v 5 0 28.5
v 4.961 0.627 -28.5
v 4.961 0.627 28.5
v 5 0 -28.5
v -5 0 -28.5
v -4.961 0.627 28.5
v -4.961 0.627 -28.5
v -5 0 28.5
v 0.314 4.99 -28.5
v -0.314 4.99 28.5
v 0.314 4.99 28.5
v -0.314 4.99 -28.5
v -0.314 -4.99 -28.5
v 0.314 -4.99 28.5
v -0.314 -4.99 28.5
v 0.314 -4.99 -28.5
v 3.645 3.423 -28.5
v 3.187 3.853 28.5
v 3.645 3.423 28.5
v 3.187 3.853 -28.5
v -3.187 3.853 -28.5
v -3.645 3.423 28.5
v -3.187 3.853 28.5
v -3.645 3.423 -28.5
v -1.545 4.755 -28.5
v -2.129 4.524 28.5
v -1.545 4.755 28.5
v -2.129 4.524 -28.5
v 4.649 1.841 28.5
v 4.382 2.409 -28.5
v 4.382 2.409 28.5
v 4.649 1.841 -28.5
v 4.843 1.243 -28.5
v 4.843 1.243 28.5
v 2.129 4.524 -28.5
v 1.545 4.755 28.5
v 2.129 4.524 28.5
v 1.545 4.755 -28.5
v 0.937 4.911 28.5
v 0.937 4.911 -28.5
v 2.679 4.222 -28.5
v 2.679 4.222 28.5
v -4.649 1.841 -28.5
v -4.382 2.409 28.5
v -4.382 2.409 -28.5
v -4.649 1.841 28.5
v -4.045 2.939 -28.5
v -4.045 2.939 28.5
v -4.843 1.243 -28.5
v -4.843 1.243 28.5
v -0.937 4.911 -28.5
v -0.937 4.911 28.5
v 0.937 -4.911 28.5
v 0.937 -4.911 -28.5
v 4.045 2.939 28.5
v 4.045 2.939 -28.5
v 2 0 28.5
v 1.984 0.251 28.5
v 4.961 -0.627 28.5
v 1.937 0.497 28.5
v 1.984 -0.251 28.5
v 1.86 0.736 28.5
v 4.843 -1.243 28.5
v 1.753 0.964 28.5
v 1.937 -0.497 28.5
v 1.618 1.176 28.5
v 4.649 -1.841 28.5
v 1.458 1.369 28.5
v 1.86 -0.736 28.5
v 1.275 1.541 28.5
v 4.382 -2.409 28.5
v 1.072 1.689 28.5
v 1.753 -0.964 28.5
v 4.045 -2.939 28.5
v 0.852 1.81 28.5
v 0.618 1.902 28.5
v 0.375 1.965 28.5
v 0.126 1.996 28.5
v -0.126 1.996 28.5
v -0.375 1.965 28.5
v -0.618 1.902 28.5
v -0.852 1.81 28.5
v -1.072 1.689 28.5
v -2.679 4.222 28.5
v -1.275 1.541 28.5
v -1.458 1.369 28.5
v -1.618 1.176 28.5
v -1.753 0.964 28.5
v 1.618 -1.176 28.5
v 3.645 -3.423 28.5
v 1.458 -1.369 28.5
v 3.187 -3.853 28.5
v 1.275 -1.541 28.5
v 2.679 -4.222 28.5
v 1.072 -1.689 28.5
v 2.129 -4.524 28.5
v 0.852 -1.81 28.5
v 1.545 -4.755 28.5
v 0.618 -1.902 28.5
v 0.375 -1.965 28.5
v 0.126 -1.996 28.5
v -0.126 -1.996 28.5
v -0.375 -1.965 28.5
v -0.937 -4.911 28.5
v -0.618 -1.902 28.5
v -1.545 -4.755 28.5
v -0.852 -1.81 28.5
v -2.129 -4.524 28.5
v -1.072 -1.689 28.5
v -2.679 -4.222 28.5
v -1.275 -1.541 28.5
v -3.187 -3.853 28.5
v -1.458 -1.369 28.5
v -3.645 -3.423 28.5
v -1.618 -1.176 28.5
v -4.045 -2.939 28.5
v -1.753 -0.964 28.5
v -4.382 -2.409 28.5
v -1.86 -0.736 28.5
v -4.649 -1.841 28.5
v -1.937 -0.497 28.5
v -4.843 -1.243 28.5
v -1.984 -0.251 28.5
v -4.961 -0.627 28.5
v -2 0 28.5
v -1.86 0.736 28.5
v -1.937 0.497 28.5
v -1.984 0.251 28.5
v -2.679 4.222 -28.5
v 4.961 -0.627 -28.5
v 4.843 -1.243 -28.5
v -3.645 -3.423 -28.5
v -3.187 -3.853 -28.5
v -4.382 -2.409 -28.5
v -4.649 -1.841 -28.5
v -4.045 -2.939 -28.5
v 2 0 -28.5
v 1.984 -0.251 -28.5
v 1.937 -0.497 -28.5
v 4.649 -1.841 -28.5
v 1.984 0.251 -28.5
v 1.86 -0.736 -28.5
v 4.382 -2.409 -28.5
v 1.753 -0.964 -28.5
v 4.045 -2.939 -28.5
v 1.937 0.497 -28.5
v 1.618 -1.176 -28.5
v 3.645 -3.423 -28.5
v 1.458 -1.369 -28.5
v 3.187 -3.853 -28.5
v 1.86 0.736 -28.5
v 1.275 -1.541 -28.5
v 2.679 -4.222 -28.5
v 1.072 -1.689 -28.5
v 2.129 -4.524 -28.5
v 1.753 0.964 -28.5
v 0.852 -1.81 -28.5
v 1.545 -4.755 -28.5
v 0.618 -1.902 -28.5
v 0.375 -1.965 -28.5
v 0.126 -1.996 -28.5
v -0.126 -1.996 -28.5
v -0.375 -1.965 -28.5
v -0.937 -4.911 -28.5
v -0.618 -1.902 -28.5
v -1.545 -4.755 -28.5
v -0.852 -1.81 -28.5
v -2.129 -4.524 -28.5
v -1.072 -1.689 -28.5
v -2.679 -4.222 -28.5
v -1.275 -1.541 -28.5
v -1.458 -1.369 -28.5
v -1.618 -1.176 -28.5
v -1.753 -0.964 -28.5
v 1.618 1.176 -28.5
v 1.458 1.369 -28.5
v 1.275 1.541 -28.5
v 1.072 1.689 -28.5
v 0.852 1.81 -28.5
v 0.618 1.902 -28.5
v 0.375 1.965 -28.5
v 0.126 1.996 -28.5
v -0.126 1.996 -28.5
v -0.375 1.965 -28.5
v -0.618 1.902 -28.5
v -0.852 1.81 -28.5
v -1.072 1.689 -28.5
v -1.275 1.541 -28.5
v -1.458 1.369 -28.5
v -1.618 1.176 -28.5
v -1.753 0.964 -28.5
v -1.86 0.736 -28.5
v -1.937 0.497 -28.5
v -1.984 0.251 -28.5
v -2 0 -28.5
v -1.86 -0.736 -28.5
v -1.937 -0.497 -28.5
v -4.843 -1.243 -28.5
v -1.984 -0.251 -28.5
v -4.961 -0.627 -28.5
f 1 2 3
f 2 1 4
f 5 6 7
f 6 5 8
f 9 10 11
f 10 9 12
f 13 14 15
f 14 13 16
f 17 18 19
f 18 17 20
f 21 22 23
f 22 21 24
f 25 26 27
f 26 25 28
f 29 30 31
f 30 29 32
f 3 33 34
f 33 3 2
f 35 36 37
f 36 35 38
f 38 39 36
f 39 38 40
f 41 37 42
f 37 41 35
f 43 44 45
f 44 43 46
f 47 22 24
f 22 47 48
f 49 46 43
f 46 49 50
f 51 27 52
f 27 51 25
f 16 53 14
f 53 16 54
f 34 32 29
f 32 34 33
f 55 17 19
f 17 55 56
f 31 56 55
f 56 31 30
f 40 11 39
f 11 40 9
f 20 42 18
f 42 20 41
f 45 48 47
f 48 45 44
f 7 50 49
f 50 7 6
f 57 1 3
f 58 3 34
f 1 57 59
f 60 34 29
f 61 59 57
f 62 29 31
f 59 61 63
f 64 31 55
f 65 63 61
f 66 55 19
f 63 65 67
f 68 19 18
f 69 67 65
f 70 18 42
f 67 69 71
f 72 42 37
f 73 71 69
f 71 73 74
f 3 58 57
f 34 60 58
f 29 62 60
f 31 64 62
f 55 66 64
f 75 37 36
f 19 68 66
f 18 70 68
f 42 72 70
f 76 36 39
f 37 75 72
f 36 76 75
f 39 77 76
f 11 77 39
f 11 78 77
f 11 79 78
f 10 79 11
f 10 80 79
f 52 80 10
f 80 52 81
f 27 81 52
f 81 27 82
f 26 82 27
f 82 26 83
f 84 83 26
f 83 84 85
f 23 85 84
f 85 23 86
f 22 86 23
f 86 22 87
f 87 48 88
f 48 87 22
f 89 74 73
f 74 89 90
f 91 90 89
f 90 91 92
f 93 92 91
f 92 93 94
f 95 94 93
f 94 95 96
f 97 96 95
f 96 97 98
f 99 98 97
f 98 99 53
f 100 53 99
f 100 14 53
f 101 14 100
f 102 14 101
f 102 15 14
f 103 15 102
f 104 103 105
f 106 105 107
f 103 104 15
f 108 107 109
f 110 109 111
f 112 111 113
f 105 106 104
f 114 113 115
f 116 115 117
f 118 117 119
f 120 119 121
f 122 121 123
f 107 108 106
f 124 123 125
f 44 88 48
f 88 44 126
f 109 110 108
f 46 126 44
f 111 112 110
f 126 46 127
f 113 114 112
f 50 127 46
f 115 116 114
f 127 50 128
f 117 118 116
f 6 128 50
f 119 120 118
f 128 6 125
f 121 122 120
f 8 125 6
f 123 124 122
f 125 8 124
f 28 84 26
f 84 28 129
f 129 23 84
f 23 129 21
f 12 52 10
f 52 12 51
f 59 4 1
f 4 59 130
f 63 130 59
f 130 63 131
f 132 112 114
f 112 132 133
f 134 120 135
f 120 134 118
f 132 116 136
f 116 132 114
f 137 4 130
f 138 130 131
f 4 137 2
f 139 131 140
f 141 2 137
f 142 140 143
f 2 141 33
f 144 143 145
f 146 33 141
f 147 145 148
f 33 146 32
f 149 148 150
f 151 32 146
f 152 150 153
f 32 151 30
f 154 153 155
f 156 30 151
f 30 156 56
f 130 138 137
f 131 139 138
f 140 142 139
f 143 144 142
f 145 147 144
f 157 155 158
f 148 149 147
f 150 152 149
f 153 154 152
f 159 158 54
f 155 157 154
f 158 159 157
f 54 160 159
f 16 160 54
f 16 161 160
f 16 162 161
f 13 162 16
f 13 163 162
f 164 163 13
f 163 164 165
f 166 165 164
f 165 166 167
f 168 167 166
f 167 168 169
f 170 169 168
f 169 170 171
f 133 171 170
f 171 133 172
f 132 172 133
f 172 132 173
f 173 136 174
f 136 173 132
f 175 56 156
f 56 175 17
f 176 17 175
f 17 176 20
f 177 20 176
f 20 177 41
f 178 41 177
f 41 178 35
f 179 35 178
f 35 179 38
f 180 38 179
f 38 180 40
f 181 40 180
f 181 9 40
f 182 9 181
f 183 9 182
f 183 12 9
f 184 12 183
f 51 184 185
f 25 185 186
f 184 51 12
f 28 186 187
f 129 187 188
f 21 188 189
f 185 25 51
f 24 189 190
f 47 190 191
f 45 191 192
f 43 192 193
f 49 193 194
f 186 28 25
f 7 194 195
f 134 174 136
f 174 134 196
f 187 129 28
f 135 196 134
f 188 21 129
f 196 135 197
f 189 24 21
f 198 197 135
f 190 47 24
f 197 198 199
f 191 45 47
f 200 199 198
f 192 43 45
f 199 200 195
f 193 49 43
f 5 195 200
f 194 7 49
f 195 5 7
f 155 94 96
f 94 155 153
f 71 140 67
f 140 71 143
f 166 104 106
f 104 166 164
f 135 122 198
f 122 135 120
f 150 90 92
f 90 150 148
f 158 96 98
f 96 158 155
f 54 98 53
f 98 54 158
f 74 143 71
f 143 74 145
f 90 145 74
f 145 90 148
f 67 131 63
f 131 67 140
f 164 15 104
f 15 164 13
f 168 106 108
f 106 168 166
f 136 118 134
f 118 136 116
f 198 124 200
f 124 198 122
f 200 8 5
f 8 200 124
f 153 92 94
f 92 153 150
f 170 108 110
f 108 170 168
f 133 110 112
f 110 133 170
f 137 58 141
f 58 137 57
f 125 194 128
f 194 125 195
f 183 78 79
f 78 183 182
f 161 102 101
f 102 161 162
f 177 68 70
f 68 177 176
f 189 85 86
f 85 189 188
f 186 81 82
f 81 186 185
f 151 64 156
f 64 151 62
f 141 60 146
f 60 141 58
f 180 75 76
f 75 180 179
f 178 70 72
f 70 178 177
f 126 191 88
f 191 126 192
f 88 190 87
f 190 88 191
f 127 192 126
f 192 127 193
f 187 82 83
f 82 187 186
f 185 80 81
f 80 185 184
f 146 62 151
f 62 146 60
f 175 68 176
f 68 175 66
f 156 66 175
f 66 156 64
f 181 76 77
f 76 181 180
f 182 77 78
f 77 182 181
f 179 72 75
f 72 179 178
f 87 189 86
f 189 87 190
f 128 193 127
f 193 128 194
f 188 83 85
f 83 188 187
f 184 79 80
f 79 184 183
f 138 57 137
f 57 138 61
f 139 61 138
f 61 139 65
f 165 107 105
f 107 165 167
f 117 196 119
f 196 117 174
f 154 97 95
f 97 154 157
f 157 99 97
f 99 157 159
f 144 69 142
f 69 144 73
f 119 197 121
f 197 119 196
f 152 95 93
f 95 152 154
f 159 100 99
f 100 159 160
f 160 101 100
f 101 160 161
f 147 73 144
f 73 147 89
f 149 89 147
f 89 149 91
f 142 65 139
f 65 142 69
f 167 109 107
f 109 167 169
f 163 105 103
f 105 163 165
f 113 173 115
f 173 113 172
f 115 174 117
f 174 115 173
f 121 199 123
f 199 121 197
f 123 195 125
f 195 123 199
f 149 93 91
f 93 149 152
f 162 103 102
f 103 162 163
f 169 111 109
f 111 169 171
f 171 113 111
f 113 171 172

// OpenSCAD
$fn = 50;


difference() {
	union() {
		translate(v = [0, 0, -28.5000000000]) {
			cylinder(h = 57, r = 5.0000000000);
		}
	}
	union() {
		translate(v = [0, 0, -100.0000000000]) {
			cylinder(h = 200, r = 2);
		}
	}
}
